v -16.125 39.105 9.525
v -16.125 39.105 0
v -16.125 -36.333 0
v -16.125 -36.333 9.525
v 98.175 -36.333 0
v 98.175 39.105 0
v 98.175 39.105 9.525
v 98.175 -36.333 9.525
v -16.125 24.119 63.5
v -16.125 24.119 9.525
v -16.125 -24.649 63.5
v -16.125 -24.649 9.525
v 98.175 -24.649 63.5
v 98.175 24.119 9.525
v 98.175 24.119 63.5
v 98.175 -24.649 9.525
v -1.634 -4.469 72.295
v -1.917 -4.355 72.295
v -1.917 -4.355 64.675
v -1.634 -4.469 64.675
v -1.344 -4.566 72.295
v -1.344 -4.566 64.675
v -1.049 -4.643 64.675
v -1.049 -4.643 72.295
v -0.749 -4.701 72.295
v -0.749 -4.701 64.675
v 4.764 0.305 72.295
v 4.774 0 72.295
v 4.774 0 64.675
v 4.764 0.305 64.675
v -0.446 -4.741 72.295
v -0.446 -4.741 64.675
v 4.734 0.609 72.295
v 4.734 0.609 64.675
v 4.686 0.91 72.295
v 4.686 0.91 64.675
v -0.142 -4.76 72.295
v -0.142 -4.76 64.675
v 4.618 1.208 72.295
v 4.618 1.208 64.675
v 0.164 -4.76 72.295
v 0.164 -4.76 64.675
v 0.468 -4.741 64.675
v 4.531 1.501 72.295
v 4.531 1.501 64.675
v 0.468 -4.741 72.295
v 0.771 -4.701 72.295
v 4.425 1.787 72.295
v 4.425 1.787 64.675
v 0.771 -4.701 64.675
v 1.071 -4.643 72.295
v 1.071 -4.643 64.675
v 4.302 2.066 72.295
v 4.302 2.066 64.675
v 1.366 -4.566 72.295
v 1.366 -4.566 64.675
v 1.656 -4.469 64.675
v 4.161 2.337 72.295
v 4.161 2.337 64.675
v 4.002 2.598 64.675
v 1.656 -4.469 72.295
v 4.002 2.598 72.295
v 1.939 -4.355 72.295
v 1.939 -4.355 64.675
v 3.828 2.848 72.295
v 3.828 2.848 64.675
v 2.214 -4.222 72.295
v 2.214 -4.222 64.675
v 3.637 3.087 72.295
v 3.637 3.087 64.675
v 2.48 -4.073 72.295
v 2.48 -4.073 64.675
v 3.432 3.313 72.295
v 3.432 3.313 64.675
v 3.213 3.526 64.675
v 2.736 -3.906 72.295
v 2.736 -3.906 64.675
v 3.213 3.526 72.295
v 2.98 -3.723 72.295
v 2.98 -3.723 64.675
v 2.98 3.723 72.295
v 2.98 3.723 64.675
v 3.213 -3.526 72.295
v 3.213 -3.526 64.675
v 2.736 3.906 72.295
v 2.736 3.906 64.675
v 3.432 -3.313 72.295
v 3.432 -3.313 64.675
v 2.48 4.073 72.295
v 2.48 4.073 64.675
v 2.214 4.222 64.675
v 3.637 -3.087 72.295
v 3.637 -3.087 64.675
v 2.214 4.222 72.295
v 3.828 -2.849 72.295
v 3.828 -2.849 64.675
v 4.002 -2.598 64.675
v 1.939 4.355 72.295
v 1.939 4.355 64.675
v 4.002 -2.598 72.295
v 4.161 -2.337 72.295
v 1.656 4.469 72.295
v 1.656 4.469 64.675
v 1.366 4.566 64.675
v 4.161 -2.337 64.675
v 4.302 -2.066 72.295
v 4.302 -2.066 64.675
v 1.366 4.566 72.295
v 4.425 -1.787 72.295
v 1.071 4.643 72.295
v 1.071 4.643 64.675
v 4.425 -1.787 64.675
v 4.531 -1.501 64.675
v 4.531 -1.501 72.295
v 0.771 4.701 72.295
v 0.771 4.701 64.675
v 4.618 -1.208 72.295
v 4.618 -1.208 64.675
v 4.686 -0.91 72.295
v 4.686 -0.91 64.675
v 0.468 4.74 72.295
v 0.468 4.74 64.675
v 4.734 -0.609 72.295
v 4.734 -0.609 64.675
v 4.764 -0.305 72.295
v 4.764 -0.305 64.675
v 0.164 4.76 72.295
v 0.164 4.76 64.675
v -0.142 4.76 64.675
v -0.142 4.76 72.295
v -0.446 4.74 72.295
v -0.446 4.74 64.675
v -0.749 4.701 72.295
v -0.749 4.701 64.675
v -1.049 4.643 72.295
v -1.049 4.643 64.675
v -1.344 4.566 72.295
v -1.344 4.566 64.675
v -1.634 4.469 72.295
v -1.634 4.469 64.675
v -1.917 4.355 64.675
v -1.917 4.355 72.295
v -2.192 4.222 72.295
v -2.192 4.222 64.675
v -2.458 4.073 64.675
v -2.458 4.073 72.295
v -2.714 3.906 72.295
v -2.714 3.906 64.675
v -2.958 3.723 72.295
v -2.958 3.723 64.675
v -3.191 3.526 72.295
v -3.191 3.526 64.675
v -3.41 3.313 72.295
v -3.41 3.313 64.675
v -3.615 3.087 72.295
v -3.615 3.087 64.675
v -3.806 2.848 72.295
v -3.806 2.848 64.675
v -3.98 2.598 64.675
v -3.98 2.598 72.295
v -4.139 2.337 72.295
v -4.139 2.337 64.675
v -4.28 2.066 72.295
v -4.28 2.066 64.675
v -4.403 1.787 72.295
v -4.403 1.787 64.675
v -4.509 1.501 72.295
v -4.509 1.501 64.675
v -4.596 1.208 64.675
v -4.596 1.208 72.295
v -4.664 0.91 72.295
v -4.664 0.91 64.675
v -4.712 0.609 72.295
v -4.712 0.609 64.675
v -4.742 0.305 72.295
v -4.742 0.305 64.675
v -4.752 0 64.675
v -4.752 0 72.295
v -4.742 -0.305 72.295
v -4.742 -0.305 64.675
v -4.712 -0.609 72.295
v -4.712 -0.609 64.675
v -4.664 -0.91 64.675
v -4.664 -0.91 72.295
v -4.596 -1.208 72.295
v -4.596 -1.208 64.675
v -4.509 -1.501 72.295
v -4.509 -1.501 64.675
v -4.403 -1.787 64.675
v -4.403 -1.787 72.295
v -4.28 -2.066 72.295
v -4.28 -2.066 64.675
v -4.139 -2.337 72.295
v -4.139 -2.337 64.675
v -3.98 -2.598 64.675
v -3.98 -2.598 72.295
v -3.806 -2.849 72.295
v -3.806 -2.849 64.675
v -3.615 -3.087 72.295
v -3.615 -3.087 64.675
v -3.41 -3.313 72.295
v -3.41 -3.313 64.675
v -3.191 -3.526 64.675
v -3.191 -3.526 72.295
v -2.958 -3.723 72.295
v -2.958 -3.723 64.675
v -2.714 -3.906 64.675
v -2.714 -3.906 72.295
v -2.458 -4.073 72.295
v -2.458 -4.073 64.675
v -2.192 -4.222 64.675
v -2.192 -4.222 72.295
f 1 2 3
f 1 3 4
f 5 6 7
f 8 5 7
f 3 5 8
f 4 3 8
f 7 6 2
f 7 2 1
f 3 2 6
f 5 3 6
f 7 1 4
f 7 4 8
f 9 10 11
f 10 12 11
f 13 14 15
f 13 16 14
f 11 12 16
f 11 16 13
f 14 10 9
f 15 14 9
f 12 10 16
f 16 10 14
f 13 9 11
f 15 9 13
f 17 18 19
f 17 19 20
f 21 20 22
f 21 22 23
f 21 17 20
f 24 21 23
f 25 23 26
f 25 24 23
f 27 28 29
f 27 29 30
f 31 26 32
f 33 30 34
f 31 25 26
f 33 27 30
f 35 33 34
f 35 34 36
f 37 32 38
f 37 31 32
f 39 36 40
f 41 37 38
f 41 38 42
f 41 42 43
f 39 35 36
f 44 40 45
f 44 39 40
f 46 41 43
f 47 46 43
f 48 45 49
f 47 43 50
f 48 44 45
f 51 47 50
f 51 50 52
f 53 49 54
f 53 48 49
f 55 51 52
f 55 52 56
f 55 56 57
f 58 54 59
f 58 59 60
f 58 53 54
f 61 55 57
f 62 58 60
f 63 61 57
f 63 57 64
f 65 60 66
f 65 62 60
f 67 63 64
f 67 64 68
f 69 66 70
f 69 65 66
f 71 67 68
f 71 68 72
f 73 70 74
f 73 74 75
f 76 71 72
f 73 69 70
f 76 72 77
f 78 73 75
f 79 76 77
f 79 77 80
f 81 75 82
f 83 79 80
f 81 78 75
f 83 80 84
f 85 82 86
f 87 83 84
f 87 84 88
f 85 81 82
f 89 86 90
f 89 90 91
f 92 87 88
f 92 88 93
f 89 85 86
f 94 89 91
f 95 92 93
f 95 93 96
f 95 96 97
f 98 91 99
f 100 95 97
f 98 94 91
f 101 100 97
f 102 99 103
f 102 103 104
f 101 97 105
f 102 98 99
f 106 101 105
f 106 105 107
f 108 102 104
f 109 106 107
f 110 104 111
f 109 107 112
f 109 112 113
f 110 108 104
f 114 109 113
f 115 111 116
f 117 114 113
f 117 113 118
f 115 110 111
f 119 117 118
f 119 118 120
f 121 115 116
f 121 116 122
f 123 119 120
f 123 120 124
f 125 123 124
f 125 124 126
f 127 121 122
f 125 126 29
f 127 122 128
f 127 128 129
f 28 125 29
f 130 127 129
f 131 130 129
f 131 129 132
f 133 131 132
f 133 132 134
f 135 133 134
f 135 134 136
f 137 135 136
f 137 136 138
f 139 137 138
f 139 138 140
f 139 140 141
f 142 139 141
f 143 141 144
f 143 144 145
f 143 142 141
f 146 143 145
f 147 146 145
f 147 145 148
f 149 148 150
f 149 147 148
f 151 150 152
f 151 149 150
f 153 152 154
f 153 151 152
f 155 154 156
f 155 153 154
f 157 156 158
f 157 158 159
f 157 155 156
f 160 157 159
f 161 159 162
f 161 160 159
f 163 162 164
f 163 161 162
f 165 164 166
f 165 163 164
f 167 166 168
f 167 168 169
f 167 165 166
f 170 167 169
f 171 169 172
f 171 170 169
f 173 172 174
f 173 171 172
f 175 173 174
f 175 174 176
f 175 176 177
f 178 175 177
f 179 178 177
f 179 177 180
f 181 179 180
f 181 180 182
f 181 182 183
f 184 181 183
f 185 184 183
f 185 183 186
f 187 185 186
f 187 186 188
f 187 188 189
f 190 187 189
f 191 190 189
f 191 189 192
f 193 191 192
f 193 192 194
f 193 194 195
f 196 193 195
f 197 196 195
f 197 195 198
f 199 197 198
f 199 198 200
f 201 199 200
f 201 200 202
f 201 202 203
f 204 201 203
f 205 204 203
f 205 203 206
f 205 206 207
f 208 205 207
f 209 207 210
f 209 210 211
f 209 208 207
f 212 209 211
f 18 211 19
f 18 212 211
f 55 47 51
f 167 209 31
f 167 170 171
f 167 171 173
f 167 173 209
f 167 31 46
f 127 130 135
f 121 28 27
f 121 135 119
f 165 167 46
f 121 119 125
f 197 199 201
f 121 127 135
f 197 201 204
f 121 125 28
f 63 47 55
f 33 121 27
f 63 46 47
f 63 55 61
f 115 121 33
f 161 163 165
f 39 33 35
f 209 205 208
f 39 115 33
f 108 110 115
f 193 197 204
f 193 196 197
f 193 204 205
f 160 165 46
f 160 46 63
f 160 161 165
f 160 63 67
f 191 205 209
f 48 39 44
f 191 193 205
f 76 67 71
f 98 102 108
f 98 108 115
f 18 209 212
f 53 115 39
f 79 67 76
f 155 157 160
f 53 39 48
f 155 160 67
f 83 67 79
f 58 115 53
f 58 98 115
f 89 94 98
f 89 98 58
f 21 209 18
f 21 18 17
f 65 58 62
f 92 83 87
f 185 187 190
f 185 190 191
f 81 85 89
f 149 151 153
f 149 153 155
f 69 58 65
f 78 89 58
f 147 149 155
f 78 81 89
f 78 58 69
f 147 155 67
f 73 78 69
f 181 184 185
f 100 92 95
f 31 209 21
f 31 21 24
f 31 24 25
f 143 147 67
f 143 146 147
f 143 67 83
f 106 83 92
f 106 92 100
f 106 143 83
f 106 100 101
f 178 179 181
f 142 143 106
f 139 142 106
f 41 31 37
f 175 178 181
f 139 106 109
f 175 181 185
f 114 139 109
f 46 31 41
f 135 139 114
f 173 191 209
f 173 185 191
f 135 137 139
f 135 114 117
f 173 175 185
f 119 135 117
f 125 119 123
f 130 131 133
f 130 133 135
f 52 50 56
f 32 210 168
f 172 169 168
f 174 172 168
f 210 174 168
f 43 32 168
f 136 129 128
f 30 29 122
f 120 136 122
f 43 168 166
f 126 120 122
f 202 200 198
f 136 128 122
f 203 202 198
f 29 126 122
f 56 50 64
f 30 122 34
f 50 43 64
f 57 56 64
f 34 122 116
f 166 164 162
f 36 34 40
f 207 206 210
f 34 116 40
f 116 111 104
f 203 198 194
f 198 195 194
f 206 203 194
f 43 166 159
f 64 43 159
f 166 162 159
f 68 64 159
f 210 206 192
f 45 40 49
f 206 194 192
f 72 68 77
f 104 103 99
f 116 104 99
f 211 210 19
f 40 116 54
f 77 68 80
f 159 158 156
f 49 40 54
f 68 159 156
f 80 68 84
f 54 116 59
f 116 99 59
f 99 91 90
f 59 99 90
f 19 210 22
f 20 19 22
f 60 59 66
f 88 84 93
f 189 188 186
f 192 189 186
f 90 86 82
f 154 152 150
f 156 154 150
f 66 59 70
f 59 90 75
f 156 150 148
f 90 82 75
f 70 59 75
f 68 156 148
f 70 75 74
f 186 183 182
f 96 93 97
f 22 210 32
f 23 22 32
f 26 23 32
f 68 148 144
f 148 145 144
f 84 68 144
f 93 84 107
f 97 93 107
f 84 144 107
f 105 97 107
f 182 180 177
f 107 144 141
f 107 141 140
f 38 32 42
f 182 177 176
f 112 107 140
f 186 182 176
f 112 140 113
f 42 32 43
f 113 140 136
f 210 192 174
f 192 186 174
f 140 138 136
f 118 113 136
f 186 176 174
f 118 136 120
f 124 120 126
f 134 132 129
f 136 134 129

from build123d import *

# Parameters (mm, degrees)
BOX_W          = 114.3
BOX_H          = 75.438
BOX_DEPTH      = 9.525
BOX001_W       = 114.3
BOX001_H       = 48.768
BOX001_DEPTH   = 53.975
CYLINDER_R     = 4.7625
CYLINDER_DEPTH = 7.62


with BuildPart() as cube:
    # Box → Box (new body)
    with BuildSketch(Plane(origin=(-16.124774, -36.332595, 0), x_dir=(1, 0, 0), z_dir=(0, 0, 1))):
        with Locations((57.15, 37.719)):
            Rectangle(BOX_W, BOX_H)
    extrude(amount=BOX_DEPTH)


with BuildPart() as cube001:
    # Box001 → Box001 (new body)
    with BuildSketch(Plane(origin=(-16.124774, -24.648595, 9.525), x_dir=(1, 0, 0), z_dir=(0, 0, 1))):
        with Locations((57.15, 24.384)):
            Rectangle(BOX001_W, BOX001_H)
    extrude(amount=BOX001_DEPTH)


with BuildPart() as cylinder:
    # Cylinder → Cylinder (new body)
    with BuildSketch(Plane(origin=(0.010995, -1.7e-05, 64.674805), x_dir=(1, 0, 0), z_dir=(0, 0, 1))):
        Circle(CYLINDER_R)
    extrude(amount=CYLINDER_DEPTH)


solid = Compound([cube.part, cube001.part, cylinder.part])
